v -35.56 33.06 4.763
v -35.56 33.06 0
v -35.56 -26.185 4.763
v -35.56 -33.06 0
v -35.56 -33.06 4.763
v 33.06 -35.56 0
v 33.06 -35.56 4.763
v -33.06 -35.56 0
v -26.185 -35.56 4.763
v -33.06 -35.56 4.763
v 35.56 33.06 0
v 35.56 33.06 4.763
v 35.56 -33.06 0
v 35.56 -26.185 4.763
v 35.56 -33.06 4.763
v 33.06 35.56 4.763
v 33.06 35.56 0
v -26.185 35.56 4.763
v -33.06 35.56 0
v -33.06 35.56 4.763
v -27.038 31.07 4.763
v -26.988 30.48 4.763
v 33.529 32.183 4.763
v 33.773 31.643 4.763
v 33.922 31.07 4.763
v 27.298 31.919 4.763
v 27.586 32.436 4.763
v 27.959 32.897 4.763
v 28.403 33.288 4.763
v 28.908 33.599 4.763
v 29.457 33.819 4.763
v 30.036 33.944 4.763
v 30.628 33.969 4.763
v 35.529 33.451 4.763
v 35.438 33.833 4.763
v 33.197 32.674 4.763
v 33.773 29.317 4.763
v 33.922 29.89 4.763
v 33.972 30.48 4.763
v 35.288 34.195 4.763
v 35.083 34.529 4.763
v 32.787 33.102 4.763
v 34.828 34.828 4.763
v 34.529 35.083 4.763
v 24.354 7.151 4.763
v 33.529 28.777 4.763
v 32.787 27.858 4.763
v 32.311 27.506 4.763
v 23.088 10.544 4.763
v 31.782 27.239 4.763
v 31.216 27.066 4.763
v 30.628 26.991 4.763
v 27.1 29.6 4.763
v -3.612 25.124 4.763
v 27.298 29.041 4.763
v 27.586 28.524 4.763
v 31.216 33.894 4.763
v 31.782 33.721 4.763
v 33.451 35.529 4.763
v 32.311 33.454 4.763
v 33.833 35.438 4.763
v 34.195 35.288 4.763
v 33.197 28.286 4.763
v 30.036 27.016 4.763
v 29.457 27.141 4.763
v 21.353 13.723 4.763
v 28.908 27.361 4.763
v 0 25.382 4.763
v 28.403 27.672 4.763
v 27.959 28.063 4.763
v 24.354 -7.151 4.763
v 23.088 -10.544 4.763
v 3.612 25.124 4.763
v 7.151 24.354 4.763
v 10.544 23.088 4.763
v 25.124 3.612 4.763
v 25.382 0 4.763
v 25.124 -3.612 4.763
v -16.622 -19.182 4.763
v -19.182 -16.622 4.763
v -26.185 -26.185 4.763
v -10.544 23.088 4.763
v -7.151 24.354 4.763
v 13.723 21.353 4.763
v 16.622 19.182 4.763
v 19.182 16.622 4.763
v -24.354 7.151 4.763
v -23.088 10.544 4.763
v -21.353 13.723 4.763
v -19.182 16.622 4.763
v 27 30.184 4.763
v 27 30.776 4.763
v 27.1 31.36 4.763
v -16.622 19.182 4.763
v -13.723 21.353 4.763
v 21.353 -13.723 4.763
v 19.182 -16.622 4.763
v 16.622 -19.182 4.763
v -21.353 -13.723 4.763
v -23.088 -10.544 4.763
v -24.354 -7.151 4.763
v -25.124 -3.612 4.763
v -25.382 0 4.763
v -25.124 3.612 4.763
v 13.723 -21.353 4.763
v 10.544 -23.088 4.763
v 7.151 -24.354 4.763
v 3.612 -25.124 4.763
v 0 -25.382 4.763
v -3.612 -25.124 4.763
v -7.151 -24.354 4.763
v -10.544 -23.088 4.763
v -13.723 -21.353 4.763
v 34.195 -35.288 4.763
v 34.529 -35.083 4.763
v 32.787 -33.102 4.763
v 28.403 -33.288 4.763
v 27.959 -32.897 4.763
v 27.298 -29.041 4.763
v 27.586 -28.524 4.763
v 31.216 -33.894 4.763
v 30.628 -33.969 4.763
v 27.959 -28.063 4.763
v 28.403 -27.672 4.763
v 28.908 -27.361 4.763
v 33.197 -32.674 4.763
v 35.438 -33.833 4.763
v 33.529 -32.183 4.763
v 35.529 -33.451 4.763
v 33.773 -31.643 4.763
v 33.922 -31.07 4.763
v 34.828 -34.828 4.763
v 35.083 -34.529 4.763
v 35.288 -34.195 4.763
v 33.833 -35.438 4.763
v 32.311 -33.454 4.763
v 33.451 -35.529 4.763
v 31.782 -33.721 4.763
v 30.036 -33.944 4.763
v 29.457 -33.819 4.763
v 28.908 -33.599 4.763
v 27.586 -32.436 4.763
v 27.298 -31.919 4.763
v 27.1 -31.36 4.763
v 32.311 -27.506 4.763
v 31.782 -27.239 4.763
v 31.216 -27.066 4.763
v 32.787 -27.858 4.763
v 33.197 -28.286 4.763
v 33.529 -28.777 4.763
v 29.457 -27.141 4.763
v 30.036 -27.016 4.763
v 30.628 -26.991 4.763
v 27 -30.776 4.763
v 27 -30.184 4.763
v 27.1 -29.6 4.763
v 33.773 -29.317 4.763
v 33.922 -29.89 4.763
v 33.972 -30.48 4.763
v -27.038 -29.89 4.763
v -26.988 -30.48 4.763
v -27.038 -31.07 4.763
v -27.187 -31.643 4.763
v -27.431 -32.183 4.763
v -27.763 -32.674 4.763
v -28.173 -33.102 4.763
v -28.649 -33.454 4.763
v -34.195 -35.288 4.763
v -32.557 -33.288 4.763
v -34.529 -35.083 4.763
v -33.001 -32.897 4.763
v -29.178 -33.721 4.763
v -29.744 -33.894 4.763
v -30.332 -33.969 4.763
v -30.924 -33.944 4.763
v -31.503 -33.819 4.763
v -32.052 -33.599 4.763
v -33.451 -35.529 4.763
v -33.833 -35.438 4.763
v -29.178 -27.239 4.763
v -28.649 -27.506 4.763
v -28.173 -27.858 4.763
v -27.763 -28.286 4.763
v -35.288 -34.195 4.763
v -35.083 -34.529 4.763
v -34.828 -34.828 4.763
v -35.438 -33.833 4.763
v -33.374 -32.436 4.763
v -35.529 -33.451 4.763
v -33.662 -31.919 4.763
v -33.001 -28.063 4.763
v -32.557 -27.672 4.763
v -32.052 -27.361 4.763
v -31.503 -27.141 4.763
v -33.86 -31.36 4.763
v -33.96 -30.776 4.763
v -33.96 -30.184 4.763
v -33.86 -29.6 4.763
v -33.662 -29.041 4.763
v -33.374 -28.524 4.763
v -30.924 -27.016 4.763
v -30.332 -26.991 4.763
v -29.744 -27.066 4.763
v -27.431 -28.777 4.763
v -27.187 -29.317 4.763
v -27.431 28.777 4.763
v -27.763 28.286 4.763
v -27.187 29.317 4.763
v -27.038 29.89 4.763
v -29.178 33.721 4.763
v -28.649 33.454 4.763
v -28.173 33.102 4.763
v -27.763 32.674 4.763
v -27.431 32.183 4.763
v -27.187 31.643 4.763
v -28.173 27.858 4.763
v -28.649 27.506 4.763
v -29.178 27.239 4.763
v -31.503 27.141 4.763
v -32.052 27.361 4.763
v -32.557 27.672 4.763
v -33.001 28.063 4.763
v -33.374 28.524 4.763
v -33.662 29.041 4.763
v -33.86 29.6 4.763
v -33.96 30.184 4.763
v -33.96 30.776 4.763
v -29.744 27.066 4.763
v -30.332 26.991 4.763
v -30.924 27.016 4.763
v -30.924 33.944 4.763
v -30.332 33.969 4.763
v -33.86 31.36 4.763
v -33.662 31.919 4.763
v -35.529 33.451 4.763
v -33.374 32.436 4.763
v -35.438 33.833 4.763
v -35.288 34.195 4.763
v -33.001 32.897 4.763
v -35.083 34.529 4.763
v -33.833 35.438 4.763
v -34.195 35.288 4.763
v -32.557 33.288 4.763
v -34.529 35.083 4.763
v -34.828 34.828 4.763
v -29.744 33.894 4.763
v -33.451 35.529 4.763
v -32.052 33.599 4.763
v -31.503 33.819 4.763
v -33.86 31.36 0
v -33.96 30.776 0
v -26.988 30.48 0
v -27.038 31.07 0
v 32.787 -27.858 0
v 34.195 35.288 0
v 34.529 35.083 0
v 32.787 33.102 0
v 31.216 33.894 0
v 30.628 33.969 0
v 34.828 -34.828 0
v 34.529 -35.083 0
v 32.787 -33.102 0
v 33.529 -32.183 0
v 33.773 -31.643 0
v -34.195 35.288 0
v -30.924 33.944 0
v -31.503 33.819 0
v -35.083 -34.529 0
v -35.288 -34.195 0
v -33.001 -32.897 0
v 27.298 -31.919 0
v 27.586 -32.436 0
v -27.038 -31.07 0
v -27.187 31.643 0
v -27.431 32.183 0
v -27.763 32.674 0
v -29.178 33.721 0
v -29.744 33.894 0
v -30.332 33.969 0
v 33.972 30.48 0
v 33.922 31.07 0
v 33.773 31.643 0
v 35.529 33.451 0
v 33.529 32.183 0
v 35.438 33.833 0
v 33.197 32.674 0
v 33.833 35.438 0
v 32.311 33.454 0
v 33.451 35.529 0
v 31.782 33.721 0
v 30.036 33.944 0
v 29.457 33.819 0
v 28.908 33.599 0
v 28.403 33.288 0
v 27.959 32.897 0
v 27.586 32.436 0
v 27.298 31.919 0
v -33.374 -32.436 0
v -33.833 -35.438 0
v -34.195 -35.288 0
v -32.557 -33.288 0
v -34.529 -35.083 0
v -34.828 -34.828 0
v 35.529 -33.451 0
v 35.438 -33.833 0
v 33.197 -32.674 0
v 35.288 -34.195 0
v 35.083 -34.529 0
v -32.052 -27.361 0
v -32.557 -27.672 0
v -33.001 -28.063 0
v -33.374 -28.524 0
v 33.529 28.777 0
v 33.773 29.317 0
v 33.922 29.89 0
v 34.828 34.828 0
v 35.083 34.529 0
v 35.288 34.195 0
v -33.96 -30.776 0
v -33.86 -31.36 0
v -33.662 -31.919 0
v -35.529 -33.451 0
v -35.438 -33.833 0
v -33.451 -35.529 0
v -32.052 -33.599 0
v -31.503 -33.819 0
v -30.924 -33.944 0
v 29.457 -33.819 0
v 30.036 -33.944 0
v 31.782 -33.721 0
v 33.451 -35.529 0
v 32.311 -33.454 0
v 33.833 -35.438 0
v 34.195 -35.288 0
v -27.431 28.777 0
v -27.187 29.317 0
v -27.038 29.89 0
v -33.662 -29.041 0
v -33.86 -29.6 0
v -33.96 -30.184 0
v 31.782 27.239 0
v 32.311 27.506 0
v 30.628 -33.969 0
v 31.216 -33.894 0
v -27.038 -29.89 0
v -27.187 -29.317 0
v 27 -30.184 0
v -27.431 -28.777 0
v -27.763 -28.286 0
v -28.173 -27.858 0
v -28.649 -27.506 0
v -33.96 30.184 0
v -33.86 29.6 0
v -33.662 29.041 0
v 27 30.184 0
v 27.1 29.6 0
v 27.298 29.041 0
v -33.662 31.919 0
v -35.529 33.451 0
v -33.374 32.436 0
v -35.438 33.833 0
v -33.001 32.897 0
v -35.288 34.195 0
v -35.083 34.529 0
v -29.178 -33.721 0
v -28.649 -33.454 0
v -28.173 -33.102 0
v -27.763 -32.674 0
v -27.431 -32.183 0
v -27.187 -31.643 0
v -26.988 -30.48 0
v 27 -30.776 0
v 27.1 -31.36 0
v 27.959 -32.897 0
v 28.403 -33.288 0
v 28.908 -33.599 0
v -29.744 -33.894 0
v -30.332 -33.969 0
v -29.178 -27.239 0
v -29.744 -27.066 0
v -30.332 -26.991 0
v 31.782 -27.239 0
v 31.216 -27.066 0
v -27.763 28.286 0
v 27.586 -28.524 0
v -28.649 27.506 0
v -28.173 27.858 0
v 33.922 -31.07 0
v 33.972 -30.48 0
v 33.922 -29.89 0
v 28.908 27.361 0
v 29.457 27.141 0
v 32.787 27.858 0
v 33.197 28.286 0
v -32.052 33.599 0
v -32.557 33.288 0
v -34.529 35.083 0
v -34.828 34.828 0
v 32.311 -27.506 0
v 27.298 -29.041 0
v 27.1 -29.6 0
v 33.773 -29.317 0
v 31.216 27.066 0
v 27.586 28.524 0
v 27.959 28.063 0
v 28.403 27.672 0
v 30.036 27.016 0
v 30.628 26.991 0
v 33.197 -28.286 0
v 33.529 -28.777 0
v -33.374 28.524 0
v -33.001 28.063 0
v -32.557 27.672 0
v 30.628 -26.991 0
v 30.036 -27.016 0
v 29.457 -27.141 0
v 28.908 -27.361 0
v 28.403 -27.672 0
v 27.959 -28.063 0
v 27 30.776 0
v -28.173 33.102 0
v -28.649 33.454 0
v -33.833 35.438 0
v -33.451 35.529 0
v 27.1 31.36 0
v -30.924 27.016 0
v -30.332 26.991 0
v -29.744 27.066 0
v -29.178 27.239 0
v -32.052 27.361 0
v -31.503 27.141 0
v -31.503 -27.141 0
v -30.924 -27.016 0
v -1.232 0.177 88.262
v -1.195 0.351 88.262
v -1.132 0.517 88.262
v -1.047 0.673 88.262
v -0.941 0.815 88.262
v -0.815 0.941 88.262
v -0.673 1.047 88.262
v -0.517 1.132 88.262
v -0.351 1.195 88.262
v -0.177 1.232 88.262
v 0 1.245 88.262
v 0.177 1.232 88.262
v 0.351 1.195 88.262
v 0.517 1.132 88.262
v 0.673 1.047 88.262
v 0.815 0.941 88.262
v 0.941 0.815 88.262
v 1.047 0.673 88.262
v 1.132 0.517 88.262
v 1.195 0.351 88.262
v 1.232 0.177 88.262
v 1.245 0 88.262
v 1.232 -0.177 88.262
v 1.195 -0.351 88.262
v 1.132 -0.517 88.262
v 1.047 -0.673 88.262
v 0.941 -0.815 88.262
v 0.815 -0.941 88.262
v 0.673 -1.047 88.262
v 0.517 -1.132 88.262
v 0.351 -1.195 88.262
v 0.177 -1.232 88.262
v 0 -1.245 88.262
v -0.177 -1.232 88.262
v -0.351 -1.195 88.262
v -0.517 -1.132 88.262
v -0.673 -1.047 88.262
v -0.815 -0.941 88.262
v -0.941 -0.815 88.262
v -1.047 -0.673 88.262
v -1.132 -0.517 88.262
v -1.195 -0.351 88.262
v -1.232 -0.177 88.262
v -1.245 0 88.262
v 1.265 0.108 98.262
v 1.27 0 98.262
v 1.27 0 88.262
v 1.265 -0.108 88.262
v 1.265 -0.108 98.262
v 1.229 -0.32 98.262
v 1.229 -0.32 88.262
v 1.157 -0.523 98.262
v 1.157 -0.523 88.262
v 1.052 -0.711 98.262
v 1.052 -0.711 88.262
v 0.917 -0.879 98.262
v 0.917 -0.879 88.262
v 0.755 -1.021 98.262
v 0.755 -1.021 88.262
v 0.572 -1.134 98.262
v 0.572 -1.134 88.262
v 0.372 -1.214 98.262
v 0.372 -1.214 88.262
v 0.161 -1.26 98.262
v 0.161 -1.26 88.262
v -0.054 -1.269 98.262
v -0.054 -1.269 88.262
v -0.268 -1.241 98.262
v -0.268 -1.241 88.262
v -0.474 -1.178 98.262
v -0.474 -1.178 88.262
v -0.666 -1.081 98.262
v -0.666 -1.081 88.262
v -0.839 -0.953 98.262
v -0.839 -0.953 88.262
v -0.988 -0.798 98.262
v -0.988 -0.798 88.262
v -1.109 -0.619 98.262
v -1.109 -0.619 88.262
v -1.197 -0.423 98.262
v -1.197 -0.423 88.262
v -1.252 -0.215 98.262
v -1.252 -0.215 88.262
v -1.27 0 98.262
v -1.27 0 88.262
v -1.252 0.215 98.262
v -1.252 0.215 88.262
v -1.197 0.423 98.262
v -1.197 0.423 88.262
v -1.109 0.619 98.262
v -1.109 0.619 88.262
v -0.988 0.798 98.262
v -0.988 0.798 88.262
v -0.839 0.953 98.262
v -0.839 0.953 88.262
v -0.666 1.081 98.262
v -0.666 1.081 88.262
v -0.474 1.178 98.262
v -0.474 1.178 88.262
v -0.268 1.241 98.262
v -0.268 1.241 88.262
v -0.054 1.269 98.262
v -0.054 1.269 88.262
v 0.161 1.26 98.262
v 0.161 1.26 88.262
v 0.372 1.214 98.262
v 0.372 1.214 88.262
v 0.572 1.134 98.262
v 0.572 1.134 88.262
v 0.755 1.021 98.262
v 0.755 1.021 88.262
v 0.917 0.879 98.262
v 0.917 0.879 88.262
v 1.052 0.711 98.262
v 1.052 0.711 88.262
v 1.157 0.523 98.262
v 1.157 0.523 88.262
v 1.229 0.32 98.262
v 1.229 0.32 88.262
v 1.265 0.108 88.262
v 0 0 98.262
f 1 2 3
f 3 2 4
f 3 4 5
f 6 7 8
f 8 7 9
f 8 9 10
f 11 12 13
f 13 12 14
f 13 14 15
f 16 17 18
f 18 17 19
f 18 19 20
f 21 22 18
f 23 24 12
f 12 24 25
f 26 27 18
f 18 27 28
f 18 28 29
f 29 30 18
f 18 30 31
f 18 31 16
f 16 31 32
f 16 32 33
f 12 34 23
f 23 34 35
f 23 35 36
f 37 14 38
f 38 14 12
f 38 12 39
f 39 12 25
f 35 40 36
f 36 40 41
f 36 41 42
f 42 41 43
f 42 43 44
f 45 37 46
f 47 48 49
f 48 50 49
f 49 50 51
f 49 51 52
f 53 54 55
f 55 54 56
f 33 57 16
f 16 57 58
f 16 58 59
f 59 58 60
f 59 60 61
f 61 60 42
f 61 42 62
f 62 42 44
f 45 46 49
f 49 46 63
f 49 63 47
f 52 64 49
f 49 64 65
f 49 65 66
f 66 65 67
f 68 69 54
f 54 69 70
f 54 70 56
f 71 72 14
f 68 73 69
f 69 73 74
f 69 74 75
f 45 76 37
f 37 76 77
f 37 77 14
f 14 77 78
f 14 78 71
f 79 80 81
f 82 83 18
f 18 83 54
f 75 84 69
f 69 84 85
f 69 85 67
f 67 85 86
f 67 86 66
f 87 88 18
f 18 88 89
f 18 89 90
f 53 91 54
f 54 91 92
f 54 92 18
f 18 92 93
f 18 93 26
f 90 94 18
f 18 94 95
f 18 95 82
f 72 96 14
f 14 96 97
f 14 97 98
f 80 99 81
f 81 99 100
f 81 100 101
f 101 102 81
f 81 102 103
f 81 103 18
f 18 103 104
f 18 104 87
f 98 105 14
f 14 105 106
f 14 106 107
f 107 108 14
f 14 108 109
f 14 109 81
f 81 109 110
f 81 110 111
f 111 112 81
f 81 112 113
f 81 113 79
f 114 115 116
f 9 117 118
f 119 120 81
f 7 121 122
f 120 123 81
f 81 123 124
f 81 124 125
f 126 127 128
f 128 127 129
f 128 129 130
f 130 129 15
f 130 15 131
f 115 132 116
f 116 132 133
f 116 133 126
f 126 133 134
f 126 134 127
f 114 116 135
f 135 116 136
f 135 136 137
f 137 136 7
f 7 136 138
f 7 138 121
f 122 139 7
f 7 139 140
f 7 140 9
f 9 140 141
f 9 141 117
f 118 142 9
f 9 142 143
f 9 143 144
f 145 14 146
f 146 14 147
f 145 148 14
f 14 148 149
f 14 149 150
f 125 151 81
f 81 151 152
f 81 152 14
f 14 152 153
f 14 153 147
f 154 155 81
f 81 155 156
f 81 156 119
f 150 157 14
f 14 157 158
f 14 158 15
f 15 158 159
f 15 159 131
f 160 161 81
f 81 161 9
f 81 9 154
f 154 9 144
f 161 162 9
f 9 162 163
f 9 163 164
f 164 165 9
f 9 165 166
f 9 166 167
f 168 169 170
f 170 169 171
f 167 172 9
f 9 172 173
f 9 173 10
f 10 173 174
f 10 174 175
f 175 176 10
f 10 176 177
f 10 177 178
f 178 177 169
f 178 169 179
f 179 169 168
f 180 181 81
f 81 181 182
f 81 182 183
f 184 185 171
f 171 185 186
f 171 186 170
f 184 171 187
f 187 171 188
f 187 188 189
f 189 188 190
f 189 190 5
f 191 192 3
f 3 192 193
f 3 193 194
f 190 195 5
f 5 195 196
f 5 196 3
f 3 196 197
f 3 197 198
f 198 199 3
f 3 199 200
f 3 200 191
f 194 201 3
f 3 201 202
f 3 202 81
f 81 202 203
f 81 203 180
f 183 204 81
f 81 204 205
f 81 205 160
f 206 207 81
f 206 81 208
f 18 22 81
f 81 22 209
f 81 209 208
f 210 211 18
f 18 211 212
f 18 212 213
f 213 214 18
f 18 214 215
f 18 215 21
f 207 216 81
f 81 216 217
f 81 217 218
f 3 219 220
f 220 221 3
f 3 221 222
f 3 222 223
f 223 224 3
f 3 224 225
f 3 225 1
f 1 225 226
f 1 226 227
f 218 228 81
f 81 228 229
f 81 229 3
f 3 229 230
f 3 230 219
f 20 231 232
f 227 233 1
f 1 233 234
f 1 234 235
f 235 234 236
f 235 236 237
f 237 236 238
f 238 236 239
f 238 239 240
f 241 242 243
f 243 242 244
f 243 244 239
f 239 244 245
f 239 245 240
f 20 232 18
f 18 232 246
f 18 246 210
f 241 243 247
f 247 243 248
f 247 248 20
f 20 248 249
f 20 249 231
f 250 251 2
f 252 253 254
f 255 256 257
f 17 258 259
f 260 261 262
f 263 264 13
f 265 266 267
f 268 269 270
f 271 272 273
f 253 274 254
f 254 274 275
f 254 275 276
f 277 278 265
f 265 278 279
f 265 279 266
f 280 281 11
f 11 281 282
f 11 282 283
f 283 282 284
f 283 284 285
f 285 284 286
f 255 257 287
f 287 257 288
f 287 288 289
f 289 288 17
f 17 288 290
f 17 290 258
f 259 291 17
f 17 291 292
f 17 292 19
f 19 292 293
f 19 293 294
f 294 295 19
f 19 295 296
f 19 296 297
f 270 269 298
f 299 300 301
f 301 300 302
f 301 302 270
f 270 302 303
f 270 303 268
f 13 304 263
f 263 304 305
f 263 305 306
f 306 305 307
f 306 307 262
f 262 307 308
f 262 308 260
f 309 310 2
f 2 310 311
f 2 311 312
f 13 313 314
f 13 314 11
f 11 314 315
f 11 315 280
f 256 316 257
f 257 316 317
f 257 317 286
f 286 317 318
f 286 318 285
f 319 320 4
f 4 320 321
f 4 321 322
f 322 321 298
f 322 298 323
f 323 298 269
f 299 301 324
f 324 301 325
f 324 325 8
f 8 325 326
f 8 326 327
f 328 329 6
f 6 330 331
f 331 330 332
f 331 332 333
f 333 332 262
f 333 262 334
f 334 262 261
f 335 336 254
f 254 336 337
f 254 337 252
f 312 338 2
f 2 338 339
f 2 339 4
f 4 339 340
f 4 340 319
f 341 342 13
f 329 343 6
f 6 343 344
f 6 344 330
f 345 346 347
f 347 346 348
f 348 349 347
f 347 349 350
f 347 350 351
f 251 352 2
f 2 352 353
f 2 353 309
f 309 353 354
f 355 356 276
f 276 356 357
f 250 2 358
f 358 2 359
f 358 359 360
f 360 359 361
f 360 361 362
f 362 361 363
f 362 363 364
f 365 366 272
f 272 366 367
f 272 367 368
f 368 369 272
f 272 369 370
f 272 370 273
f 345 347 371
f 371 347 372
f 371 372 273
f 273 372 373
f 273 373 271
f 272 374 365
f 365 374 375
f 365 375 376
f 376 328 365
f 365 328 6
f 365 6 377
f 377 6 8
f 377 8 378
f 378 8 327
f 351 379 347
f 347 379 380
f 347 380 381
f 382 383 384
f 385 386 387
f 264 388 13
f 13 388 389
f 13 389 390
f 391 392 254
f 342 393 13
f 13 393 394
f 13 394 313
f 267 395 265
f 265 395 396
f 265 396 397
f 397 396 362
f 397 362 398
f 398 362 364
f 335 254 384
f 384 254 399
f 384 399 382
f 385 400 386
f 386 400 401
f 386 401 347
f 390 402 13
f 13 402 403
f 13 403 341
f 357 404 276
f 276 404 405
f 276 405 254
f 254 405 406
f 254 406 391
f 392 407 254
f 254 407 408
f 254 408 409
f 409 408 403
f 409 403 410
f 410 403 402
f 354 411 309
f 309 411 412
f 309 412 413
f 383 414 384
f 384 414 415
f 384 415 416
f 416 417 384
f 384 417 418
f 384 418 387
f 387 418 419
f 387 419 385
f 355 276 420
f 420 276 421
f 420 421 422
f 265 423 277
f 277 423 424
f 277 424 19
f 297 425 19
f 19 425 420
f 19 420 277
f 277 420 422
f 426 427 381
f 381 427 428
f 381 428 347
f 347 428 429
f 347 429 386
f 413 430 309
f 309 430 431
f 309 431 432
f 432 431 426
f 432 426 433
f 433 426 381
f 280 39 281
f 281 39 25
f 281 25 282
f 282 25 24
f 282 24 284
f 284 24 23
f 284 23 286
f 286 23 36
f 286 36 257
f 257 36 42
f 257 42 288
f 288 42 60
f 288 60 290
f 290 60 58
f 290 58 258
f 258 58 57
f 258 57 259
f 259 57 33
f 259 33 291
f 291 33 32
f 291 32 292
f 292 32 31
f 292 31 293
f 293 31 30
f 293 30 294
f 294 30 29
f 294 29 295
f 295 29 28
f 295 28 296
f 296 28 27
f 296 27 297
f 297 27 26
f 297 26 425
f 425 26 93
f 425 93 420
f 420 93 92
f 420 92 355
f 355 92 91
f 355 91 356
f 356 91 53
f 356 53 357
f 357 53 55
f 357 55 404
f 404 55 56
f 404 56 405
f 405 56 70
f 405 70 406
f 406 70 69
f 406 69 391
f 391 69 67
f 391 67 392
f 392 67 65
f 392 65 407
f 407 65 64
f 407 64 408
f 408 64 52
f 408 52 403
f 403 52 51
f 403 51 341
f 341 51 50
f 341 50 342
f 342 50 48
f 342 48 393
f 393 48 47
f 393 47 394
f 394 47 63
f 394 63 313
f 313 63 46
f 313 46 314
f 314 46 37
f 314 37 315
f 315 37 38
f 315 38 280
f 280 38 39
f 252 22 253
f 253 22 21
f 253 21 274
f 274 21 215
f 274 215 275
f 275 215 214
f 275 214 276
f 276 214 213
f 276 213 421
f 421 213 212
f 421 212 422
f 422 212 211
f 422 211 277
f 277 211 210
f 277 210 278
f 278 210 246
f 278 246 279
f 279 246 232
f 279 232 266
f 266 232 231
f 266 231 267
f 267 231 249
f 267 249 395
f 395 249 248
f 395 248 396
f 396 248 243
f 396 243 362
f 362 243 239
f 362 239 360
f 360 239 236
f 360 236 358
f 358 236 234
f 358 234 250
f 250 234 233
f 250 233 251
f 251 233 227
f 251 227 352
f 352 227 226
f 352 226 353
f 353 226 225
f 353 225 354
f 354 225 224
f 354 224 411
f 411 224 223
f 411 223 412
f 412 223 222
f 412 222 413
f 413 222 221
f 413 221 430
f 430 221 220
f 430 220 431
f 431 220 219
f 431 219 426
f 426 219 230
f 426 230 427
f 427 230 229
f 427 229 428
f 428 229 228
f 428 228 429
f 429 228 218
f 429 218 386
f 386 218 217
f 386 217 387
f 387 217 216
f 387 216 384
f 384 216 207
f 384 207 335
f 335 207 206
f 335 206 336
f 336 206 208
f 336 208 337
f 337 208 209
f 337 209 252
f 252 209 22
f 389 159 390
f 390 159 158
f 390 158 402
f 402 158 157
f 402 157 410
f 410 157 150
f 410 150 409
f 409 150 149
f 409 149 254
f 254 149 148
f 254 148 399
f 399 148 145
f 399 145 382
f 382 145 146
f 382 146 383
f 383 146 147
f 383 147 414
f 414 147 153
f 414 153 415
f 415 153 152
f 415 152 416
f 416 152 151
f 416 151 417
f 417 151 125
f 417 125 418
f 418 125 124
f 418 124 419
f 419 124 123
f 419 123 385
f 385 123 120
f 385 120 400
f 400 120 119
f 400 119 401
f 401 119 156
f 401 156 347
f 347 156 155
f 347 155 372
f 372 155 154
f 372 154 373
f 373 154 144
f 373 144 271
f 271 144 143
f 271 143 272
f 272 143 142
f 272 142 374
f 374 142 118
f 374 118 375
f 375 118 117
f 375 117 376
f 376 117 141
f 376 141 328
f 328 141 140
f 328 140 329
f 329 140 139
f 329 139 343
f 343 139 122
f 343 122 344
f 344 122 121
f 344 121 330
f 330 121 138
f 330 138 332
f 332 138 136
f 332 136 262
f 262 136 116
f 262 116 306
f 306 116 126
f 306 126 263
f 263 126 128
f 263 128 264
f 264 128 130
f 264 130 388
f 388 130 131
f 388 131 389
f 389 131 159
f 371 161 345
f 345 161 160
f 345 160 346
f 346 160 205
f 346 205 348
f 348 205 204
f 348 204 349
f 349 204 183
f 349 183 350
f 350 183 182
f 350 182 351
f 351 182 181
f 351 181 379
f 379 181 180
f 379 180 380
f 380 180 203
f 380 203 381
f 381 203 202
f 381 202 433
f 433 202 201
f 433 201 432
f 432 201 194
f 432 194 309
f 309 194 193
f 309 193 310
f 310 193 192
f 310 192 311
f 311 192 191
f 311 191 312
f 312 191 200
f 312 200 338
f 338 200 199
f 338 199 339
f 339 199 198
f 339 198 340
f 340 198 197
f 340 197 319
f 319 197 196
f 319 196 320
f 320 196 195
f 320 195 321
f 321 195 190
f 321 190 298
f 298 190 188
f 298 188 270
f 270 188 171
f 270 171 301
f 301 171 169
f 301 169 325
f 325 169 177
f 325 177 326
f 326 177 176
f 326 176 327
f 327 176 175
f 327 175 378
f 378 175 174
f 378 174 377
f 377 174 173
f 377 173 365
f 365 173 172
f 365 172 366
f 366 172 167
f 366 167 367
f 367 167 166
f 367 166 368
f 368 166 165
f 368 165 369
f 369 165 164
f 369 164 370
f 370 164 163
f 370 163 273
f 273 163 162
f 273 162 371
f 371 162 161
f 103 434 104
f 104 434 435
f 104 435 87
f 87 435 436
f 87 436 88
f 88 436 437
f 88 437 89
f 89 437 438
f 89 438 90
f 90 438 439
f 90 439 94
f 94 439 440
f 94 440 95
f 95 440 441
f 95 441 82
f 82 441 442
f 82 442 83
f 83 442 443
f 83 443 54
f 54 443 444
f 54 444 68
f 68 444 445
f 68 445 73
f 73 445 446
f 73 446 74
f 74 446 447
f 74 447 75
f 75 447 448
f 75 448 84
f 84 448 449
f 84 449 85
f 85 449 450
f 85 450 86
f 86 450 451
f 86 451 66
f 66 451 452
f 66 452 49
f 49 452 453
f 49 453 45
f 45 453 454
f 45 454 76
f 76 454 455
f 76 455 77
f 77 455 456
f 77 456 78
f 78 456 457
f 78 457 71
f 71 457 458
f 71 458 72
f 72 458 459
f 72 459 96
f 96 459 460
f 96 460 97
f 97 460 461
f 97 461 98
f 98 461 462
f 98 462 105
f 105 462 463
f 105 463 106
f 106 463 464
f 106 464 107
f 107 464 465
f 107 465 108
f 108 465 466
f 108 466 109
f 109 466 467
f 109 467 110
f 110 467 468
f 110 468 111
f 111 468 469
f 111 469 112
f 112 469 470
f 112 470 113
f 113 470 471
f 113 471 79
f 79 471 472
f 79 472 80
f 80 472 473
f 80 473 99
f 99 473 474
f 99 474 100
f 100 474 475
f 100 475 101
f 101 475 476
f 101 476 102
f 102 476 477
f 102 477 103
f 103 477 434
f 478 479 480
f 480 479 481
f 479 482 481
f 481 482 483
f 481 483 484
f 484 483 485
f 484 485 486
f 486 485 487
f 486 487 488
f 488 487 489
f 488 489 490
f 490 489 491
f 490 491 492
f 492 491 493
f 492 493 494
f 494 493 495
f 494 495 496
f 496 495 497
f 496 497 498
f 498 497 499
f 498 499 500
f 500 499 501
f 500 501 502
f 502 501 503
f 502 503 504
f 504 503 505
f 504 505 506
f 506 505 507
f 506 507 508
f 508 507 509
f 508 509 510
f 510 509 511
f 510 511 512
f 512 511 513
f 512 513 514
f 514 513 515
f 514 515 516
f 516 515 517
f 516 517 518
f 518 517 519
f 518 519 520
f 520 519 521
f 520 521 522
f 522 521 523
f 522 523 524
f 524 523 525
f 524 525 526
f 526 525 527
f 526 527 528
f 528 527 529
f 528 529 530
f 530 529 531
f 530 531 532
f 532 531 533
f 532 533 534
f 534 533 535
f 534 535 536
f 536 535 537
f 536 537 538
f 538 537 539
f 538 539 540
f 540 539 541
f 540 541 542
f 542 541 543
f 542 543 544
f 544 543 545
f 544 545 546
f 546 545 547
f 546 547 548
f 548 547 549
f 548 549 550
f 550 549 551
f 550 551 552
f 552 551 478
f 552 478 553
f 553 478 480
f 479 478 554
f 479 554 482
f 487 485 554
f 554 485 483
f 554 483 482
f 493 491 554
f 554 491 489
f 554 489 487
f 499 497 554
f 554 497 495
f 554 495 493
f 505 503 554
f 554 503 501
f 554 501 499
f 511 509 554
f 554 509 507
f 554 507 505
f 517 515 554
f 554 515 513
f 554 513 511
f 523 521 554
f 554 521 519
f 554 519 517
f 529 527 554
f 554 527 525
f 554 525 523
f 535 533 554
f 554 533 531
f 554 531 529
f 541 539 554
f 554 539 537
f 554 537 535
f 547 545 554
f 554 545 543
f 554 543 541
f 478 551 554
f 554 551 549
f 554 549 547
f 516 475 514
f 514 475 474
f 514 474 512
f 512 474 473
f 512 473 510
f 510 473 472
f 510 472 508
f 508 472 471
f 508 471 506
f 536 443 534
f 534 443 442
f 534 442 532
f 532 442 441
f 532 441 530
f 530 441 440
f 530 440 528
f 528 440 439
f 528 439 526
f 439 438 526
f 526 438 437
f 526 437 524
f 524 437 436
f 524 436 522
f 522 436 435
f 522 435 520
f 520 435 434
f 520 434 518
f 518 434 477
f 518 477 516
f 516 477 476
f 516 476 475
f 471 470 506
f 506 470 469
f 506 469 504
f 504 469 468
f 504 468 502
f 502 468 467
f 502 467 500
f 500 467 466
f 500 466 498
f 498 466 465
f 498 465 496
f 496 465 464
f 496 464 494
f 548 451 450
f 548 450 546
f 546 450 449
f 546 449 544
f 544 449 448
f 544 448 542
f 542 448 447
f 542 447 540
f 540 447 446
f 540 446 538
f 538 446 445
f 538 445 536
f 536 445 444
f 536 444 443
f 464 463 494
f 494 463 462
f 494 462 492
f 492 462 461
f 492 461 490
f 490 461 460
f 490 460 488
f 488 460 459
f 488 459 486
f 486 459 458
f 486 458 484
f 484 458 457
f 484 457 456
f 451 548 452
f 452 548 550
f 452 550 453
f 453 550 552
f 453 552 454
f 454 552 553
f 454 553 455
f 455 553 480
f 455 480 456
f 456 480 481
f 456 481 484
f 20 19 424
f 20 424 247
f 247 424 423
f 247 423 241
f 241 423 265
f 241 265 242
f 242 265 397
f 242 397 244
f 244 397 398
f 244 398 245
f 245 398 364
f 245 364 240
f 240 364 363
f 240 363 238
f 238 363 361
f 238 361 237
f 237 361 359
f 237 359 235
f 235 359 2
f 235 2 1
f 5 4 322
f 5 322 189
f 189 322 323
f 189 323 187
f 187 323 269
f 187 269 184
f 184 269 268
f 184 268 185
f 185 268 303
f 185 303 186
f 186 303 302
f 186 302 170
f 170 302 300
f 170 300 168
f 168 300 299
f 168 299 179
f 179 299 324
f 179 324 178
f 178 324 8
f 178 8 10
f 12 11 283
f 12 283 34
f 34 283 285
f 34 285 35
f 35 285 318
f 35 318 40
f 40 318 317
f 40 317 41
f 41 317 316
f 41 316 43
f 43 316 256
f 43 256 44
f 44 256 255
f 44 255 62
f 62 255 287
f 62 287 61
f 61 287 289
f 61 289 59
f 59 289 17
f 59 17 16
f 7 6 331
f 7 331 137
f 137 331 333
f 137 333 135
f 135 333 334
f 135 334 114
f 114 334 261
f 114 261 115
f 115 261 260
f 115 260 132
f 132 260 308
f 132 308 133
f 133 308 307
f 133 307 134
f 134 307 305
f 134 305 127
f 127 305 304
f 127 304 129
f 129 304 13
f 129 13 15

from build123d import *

# Parameters (mm, degrees)
SKETCH1_W           = 71.12
SKETCH1_H           = 71.12
BOSS_EXTRUDE1_DEPTH = 4.7625
SKETCH2_R           = 3.4925
CUT_EXTRUDE1_DEPTH  = 51.514439582
SKETCH3_R           = 25.382
BOSS_EXTRUDE2_DEPTH = 83.5
SKETCH5_R           = 1.27
BOSS_EXTRUDE3_DEPTH = 10
FILLET1_R           = 2.5


with BuildPart() as part:
    # Sketch1 → Boss-Extrude1 (new body)
    with BuildSketch(Plane.XY):
        Rectangle(SKETCH1_W, SKETCH1_H)
    extrude(amount=BOSS_EXTRUDE1_DEPTH)

    # Sketch2 → Cut-Extrude1 (cut, through all)
    with BuildSketch(Plane.XY.offset(4.7625)):
        with Locations((-30.48, 30.48)):
            Circle(SKETCH2_R)
        with Locations((30.48, 30.48)):
            Circle(SKETCH2_R)
    cut_extrude1 = extrude(amount=-CUT_EXTRUDE1_DEPTH, mode=Mode.SUBTRACT)

    # Mirror1: Cut-Extrude1 across plane
    add(cut_extrude1.mirror(Plane.ZX), mode=Mode.SUBTRACT)

    # Sketch3 → Boss-Extrude2 (add)
    with BuildSketch(Plane.XY.offset(4.7625)):
        with Locations(Location((0, 0, 0), (0, 0, 180))):
            Circle(SKETCH3_R)
    extrude(amount=BOSS_EXTRUDE2_DEPTH)

    # Sketch4 → Cut-Revolve1 (revolve, cut)
    with BuildSketch(Plane(origin=(0, 0, 0), x_dir=(0, 0, -1), z_dir=(1, 0, 0)), mode=Mode.PRIVATE) as cut_revolve1_sk:
        Polygon((-4.7625, 25.382), (-88.2625, 1.245), (-88.2625, 25.382), align=None)
    revolve(cut_revolve1_sk.sketch.rotate(Axis((0, 0, 88.2625), (0, 0, -1)), 270), axis=Axis((0, 0, 88.2625), (0, 0, -1)), mode=Mode.SUBTRACT)

    # Sketch5 → Boss-Extrude3 (add)
    with BuildSketch(Plane.XY.offset(88.2625)):
        Circle(SKETCH5_R)
    extrude(amount=BOSS_EXTRUDE3_DEPTH)

    # Fillet1
    fillet1_edges = [part.edges().sort_by_distance(p)[0] for p in [
        (-35.56, 35.56, 2.38125),
        (35.56, 35.56, 2.38125),
        (35.56, -35.56, 2.38125),
        (-35.56, -35.56, 2.38125),
    ]]
    fillet(fillet1_edges, radius=FILLET1_R)


solid = part.part
